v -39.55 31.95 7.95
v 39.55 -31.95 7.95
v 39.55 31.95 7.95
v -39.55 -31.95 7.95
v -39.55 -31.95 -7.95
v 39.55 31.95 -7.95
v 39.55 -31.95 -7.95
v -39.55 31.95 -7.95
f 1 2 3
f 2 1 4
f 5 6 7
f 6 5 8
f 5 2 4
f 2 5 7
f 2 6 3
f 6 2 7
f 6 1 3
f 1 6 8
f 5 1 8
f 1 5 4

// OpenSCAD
// Rectangular block
// Units: millimeters
// Size: 79.1 x 63.9 x 15.9

length = 79.1;
width = 63.9;
height = 15.9;

module block() {
    cube([length, width, height], center = true);
}

color("LightSteelBlue")
    block();
